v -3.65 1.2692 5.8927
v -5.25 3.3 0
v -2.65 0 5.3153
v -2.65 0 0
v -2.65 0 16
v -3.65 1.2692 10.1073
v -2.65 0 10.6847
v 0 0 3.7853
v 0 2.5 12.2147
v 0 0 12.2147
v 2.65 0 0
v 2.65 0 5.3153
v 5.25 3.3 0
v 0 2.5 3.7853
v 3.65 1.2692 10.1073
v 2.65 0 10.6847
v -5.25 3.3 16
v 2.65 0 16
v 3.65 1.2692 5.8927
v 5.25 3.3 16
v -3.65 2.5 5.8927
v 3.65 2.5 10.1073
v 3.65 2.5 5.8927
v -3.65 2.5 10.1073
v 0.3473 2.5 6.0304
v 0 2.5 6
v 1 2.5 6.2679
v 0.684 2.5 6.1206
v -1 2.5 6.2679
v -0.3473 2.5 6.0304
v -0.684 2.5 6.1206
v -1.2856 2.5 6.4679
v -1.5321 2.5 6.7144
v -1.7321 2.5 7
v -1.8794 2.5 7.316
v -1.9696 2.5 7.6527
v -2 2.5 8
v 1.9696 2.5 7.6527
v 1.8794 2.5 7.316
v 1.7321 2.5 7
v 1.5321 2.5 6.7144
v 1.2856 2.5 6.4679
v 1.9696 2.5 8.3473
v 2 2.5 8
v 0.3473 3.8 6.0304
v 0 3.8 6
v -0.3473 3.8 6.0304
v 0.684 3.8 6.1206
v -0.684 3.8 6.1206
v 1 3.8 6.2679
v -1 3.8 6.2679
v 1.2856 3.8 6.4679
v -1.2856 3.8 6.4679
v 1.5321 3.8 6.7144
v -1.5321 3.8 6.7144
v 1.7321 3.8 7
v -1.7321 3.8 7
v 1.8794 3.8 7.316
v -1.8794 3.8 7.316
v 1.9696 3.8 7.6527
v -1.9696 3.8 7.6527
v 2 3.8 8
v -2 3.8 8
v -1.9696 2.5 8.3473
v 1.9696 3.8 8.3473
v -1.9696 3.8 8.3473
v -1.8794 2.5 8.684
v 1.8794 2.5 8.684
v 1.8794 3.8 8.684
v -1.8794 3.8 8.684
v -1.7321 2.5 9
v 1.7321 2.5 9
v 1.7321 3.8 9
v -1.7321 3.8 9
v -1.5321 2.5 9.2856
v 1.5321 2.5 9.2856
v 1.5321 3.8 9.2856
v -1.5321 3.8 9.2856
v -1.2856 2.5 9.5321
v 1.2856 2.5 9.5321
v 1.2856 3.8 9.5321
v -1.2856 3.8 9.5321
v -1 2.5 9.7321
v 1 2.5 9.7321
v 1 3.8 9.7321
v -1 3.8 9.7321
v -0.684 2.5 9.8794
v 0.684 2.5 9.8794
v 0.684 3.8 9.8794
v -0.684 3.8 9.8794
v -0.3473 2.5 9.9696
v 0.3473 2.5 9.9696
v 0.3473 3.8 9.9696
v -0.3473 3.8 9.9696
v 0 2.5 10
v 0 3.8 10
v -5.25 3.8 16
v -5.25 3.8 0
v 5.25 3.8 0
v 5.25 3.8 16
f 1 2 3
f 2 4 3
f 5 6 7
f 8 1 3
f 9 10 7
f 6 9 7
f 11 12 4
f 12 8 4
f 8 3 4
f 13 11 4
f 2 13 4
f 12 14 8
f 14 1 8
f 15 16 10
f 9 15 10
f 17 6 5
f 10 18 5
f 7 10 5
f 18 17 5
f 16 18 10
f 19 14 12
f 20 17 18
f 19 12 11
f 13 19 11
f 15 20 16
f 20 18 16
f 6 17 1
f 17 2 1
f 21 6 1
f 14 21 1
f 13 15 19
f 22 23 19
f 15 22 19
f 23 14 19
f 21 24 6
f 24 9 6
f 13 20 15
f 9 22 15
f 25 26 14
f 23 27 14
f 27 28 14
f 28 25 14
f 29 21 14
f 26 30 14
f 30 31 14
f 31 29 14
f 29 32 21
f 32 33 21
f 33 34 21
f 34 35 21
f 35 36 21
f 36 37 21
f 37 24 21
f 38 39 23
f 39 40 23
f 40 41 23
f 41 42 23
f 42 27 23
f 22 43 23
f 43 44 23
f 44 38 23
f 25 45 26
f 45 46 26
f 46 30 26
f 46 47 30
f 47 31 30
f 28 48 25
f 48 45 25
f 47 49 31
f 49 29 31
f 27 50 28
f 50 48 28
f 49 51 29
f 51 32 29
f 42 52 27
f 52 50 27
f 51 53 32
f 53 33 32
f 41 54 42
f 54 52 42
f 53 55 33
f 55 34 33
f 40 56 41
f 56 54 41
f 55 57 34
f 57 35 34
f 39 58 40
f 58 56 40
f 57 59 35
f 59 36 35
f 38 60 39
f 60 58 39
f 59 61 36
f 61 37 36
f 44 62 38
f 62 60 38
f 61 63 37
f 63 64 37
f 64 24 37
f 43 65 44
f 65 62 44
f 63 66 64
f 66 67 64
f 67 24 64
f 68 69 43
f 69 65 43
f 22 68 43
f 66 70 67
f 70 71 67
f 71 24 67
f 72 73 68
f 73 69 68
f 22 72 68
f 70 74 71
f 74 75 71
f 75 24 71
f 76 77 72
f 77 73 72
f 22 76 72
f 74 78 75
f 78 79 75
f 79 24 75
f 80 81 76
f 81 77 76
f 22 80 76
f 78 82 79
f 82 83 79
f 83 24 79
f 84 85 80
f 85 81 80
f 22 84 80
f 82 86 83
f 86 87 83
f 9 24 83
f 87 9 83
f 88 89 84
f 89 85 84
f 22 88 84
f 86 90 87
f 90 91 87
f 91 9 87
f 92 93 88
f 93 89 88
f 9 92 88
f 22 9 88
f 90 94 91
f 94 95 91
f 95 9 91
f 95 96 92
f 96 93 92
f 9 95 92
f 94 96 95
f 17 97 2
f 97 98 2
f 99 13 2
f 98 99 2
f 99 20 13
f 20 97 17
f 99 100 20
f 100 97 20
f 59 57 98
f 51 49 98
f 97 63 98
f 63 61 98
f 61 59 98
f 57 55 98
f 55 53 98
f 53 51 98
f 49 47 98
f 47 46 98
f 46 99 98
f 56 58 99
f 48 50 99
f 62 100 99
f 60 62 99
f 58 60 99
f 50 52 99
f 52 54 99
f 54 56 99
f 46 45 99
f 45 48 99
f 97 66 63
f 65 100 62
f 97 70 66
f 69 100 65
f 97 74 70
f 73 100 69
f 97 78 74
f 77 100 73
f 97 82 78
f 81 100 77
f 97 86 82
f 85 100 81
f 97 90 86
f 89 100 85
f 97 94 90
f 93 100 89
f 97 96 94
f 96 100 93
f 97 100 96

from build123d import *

# Parameters (mm, degrees)
RESSALTO_EXTRUS_O1_DEPTH   = 16
CORTE_EXTRUS_O1_DEPTH      = 18.262748912
CORTE_EXTRUS_O1_DEPTH_BACK = 18.262748912
ESBO_O2_R                  = 2
CORTE_EXTRUS_O2_DEPTH      = 2.5


with BuildPart() as part:
    # Esboço1 → Ressalto-extrusão1 (new body)
    with BuildSketch(Plane.XY):
        Polygon((-2.65, 0), (2.65, 0), (5.25, 3.3), (5.25, 3.8), (-5.25, 3.8), (-5.25, 3.3), align=None)
    extrude(amount=RESSALTO_EXTRUS_O1_DEPTH)

    # Esboço2 → Corte-extrusão1 (cut, two sides: drawn at the far end of the back side and taken through both)
    with BuildSketch(Plane(origin=(0, 3.8, 0), x_dir=(1, 0, 0), z_dir=(0, 1, 0)).offset(-CORTE_EXTRUS_O1_DEPTH_BACK)):
        with Locations(Location((0, -8, 0), (0, 0, 270))):
            Circle(ESBO_O2_R)
    extrude(amount=CORTE_EXTRUS_O1_DEPTH + CORTE_EXTRUS_O1_DEPTH_BACK, mode=Mode.SUBTRACT)

    # Esboço3 → Corte-extrusão2 (cut)
    with BuildSketch(Plane.XZ):
        Polygon((0, 12.214656965), (-3.65, 10.107328483), (-3.65, 5.892671517), (0, 3.785343035), (3.65, 5.892671517), (3.65, 10.107328483), align=None)
    extrude(amount=-CORTE_EXTRUS_O2_DEPTH, mode=Mode.SUBTRACT)


solid = part.part
